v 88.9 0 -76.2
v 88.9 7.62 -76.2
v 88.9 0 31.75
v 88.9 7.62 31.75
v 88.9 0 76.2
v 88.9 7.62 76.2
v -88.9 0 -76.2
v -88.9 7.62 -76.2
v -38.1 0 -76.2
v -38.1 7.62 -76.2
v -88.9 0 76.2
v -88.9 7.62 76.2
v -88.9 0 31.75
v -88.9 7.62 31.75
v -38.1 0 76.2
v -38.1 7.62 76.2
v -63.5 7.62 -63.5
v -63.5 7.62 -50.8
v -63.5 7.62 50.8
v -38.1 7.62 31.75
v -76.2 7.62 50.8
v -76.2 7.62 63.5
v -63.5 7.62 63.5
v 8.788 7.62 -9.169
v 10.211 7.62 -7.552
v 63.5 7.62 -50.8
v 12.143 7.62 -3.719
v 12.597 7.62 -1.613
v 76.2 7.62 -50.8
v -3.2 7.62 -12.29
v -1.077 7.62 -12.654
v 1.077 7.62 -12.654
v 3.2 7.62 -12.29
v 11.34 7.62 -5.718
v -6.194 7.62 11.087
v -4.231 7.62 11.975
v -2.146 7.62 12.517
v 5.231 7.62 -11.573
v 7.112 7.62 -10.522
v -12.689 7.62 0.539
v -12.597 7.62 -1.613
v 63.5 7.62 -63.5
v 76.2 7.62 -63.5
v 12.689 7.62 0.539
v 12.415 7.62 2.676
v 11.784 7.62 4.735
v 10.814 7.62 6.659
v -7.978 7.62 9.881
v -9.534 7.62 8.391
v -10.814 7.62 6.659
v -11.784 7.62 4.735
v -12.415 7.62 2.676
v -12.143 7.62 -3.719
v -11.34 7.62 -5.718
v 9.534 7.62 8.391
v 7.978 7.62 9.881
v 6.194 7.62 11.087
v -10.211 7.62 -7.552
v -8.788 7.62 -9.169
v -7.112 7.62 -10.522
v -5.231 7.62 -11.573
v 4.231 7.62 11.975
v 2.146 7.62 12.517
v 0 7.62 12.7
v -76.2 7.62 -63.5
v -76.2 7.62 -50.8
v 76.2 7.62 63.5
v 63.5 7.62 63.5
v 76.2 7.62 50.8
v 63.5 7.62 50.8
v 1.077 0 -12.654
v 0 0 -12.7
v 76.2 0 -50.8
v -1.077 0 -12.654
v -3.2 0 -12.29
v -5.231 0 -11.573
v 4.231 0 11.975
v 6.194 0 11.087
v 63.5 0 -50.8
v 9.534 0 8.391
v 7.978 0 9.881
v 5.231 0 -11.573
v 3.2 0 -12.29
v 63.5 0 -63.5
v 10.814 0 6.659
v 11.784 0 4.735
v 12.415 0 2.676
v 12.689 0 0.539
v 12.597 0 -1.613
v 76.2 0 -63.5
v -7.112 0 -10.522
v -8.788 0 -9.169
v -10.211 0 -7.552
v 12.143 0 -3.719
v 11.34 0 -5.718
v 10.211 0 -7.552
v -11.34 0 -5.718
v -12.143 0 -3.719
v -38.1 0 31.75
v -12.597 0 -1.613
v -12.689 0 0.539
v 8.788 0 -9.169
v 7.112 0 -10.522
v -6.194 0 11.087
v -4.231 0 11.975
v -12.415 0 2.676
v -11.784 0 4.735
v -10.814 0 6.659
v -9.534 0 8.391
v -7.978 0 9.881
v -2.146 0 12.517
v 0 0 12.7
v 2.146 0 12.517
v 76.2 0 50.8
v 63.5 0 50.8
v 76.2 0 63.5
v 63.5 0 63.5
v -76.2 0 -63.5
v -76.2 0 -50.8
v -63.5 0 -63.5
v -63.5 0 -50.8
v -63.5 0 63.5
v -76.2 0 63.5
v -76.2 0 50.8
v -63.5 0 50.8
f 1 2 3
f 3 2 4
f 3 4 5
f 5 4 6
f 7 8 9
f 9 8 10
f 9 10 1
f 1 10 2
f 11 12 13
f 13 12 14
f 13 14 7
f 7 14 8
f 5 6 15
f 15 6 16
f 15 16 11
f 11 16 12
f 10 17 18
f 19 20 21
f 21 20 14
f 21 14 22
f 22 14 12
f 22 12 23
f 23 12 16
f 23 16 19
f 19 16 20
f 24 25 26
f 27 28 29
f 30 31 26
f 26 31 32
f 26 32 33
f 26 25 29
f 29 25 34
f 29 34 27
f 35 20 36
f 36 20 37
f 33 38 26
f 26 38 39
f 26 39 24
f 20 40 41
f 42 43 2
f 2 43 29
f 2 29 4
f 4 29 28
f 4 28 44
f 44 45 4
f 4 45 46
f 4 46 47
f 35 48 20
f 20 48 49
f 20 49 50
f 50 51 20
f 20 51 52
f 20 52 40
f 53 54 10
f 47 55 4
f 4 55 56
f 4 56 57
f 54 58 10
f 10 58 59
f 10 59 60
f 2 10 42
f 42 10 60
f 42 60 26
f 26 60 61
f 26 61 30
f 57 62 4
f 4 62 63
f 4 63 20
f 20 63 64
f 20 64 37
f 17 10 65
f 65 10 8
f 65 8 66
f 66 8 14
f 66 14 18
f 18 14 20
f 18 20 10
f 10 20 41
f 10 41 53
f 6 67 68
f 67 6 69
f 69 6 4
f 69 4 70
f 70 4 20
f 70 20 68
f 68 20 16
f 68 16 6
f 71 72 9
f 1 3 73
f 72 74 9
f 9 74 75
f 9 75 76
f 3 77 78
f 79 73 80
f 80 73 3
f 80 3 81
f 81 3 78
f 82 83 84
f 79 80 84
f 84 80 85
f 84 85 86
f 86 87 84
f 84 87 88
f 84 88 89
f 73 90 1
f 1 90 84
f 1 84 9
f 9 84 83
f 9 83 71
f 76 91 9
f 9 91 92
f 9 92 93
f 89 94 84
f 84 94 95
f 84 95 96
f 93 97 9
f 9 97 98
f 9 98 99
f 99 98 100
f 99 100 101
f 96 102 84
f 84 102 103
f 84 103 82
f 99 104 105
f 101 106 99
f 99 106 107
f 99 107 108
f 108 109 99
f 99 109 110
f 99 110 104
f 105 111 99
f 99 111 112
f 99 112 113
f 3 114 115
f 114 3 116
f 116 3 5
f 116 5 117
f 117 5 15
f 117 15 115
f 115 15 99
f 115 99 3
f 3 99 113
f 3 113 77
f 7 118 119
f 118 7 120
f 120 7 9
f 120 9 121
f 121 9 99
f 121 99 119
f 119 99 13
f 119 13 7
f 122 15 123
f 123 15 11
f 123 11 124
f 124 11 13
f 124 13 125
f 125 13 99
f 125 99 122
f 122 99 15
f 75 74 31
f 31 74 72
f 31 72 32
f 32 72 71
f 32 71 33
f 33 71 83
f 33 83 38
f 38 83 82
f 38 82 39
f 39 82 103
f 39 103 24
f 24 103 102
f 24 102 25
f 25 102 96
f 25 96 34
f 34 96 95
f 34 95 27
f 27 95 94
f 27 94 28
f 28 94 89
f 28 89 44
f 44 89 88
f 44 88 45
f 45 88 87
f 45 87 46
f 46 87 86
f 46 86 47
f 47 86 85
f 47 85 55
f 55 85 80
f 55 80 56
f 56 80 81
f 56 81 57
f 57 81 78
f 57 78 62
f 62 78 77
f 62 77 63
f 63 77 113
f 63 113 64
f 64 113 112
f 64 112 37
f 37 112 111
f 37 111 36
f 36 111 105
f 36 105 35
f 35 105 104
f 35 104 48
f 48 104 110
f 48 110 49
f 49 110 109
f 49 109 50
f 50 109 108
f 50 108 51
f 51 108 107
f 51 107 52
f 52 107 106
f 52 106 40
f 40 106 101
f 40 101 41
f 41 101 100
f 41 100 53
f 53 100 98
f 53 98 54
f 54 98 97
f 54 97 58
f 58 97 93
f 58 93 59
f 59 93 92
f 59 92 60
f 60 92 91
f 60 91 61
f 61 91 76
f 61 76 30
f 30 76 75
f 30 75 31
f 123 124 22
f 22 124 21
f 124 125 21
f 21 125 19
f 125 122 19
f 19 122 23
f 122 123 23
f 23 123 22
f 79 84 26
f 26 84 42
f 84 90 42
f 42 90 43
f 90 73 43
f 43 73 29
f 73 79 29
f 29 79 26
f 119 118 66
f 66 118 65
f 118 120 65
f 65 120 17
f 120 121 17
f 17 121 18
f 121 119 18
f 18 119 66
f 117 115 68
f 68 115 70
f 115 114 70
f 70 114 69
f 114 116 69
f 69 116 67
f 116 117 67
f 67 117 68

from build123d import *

# Parameters (mm, degrees)
SKETCH1_W           = 177.8
SKETCH1_H           = 152.4
BOSS_EXTRUDE1_DEPTH = 7.62
SKETCH2_R           = 12.7
CUT_EXTRUDE1_DEPTH  = 7.62
SKETCH3_W           = 12.7
SKETCH3_H           = 12.7
CUT_EXTRUDE2_DEPTH  = 118.335904139


with BuildPart() as part:
    # Sketch1 → Boss-Extrude1 (new body)
    with BuildSketch(Plane(origin=(0, 0, 0), x_dir=(1, 0, 0), z_dir=(0, 1, 0))):
        Rectangle(SKETCH1_W, SKETCH1_H)
    extrude(amount=BOSS_EXTRUDE1_DEPTH)

    # Sketch2 → Cut-Extrude1 (cut)
    with BuildSketch(Plane(origin=(0, 7.62, 0), x_dir=(1, 0, 0), z_dir=(0, 1, 0))):
        with Locations(Location((0, 0, 0), (0, 0, 270))):
            Circle(SKETCH2_R)
    extrude(amount=-CUT_EXTRUDE1_DEPTH, mode=Mode.SUBTRACT)

    # Sketch3 → Cut-Extrude2 (cut, through all)
    with BuildSketch(Plane(origin=(0, 7.62, 0), x_dir=(1, 0, 0), z_dir=(0, 1, 0))):
        with Locations((-69.85, -57.15)):
            Rectangle(SKETCH3_W, SKETCH3_H)
        with Locations((69.85, -57.15)):
            Rectangle(SKETCH3_W, SKETCH3_H)
        with Locations((-69.85, 57.15)):
            Rectangle(SKETCH3_W, SKETCH3_H)
        with Locations((69.85, 57.15)):
            Rectangle(SKETCH3_W, SKETCH3_H)
    extrude(amount=-CUT_EXTRUDE2_DEPTH, mode=Mode.SUBTRACT)


solid = part.part
